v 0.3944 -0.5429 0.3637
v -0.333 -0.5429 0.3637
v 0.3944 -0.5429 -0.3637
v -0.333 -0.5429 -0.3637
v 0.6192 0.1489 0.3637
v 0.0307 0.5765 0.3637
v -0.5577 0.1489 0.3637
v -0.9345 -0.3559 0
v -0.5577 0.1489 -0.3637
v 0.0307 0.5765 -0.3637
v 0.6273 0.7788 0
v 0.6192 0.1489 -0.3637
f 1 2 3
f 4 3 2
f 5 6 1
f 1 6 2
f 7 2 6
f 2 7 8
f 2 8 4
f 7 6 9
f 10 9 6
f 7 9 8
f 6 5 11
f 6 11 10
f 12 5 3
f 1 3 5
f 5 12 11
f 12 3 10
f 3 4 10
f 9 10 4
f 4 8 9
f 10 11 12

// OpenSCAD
polyhedron( points = [[-0.332967466453964, -0.542866751205351, 0.363691624112213], [-0.557741251564256, 0.148915826943978, 0.363691624112213], [0.0307241577053689, 0.576460972941558, 0.363691624112213], [0.619189566898213, 0.148915826838298, 0.363691624112213], [0.394415781753582, -0.542866751205351, 0.363691624112213], [-0.332967466421307, -0.542866751160402, -0.363691624095333], [-0.557741251511416, 0.148915826926812, -0.363691624095333], [0.0307241577053689, 0.576460972886001, -0.363691624095333], [0.619189566845376, 0.148915826821129, -0.363691624095333], [0.394415781753582, -0.542866751160402, -0.363691624127993], [-0.934518511051365, -0.355914529771321, -2.5869462627315e-11], [0.627276934340816, 0.778796281145051, -2.58687358254481e-11]], faces = [[0, 5, 9, 4], [0, 4, 3, 2, 1], [0, 1, 10], [0, 10, 5], [1, 2, 7, 6], [1, 6, 10], [2, 3, 11], [2, 11, 7], [3, 4, 9, 8], [3, 8, 11], [5, 6, 7, 8, 9], [5, 10, 6], [7, 11, 8]]);
